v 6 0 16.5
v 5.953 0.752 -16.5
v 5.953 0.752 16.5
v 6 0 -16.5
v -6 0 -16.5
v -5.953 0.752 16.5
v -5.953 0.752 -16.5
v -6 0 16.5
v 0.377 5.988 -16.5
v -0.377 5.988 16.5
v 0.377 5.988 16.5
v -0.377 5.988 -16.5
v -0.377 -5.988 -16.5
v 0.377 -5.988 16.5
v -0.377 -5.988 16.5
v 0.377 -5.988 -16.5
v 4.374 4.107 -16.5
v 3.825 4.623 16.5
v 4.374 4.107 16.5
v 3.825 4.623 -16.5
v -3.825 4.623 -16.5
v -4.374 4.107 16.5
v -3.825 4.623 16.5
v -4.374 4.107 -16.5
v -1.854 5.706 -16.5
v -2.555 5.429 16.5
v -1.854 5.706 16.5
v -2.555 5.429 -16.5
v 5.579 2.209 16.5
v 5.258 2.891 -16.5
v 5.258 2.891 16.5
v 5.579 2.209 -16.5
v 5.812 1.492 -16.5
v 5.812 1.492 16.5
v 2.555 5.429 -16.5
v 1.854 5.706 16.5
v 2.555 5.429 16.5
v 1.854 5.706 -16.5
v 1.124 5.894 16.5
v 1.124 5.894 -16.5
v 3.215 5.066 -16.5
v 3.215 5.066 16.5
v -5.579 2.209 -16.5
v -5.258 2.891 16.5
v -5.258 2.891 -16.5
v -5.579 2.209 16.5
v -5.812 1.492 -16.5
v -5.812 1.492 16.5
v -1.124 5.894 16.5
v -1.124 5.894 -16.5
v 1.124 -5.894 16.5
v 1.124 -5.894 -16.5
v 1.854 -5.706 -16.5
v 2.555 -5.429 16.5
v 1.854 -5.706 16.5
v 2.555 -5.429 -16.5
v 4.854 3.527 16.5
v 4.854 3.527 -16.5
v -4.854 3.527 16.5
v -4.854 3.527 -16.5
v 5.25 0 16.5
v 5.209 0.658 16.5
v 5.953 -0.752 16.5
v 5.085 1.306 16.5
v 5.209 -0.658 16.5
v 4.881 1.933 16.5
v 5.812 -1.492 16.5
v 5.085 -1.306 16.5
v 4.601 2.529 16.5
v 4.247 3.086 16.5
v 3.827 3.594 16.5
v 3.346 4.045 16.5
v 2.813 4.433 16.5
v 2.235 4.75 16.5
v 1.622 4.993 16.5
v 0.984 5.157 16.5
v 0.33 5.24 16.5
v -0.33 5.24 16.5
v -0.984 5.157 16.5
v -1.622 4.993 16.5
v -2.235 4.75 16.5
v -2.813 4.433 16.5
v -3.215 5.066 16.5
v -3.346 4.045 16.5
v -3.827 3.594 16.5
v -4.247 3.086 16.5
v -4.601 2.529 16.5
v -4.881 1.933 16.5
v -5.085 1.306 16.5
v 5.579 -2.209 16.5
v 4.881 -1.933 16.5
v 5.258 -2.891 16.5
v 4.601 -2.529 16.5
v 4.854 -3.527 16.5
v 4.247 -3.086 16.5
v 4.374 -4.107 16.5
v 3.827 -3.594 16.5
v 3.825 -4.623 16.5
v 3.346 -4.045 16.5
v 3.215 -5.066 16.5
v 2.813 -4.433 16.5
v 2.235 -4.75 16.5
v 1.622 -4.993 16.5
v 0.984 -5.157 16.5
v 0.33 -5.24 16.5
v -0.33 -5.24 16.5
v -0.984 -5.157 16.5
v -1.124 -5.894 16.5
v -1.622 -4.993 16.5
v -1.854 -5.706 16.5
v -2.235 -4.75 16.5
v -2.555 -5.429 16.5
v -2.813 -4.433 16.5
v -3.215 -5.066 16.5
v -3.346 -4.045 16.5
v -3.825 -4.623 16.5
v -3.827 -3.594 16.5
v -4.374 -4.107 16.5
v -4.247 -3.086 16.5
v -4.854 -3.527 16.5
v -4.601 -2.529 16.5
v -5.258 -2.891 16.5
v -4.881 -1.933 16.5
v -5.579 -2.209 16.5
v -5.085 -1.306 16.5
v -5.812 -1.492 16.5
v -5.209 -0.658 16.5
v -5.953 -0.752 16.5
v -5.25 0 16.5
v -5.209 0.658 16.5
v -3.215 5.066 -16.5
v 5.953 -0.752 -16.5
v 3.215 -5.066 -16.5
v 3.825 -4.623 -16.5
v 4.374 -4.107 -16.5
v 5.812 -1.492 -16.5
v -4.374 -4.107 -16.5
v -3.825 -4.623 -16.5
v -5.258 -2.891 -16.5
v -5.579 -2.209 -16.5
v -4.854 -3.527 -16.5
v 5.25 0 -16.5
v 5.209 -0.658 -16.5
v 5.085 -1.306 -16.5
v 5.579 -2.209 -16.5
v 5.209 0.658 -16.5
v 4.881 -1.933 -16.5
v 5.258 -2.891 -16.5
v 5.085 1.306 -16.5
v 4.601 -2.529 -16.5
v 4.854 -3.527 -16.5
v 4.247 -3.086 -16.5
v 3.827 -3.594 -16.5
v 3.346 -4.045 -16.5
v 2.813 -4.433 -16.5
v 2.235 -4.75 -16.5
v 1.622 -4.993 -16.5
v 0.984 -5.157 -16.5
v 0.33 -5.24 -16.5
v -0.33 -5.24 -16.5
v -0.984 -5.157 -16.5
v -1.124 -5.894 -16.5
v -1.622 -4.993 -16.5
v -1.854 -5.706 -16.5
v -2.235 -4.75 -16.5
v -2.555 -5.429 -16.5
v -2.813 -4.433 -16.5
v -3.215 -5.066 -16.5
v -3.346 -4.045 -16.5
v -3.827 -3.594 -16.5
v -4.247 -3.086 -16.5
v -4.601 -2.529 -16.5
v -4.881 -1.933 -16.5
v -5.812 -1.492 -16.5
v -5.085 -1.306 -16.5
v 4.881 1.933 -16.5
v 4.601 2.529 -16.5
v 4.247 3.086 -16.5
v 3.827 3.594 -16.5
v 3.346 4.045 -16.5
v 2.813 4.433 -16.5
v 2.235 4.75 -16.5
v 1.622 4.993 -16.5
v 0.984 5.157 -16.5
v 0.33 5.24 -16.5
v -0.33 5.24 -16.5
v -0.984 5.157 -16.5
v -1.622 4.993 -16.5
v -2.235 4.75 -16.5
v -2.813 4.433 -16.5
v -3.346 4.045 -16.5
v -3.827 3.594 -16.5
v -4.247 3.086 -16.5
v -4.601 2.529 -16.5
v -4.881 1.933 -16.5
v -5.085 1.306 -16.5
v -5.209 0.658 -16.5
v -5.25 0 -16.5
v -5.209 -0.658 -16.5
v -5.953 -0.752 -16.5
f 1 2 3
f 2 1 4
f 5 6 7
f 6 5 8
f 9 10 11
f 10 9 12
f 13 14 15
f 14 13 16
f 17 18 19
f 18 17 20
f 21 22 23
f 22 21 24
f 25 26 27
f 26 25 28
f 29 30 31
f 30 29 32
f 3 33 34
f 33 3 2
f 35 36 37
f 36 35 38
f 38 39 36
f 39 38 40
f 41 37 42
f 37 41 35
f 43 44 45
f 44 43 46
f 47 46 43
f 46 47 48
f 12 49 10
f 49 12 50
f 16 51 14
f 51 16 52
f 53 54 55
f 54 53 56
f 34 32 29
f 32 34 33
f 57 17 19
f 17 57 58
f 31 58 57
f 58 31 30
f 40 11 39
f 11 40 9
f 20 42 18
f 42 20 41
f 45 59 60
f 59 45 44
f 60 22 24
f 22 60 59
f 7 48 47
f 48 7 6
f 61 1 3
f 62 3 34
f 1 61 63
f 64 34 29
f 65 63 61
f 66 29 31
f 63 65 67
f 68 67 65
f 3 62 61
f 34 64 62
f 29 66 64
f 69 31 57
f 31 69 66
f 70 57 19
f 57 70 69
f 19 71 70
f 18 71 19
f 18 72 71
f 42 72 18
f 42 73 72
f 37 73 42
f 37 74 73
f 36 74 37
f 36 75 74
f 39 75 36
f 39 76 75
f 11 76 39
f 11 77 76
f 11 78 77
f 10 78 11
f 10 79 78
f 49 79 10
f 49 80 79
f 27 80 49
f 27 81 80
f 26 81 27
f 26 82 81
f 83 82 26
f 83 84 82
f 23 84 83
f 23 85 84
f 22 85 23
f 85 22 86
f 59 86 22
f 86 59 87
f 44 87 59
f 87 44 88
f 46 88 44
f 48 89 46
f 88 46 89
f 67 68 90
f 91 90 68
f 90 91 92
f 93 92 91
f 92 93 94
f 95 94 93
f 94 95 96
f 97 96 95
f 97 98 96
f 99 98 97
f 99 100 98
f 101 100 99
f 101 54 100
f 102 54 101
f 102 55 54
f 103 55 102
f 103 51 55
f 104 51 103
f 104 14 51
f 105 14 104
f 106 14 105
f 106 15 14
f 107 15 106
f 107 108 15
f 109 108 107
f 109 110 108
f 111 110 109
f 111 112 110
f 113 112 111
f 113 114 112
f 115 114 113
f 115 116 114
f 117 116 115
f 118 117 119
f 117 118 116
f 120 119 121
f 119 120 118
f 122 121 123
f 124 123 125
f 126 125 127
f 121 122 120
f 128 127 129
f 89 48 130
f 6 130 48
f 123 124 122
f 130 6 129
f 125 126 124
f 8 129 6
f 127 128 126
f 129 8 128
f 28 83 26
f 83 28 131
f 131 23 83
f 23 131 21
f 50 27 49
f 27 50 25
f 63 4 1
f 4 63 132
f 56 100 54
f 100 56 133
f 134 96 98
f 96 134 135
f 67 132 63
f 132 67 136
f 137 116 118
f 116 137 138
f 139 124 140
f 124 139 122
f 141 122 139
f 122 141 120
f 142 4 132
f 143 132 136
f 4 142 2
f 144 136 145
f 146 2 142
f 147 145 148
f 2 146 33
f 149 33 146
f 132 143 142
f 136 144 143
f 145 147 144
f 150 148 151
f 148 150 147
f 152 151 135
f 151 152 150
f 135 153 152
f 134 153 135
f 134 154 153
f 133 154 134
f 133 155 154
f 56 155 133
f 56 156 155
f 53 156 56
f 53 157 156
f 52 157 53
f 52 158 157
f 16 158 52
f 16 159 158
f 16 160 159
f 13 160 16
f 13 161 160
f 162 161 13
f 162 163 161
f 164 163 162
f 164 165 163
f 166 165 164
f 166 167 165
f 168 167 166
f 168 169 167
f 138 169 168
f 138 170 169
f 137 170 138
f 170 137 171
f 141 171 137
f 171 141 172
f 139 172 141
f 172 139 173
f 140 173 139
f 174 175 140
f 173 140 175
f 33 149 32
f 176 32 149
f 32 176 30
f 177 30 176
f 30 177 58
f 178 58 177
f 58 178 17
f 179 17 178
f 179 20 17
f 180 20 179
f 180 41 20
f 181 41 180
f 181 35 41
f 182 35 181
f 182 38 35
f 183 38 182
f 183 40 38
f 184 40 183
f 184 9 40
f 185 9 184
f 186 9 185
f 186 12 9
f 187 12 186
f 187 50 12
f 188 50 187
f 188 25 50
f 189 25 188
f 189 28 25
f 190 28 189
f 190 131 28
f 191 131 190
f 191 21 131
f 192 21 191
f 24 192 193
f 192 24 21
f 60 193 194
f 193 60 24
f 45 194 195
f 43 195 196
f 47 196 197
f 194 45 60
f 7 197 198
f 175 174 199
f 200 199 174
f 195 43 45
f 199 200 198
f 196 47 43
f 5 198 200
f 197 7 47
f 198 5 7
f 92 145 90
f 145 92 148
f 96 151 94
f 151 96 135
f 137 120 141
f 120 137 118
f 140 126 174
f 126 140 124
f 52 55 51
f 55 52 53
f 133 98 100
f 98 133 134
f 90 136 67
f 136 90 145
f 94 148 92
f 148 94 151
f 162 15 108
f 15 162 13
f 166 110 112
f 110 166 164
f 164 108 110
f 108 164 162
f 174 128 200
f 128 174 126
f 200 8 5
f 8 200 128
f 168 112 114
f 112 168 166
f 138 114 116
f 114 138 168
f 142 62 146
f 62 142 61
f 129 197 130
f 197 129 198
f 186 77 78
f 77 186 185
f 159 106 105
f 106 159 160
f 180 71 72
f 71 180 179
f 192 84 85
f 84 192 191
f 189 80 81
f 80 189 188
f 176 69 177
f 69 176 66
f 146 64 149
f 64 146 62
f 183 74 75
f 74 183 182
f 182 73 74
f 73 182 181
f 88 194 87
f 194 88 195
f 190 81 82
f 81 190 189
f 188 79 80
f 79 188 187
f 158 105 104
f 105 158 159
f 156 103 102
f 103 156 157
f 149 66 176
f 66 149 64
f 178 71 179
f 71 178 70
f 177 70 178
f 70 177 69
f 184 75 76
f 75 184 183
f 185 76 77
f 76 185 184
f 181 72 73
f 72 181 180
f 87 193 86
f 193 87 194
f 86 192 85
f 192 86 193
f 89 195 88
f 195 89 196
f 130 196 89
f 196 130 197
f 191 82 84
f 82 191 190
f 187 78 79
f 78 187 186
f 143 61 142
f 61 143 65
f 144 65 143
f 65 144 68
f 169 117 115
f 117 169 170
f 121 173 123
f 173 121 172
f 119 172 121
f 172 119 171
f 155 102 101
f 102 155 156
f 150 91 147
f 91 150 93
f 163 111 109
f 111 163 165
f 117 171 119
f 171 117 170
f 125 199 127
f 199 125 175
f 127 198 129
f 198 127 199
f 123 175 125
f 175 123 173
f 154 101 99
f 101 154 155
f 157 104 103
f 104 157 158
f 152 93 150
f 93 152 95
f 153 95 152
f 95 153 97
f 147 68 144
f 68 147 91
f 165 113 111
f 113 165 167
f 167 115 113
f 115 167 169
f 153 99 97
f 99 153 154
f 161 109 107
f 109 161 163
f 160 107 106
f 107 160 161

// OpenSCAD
$fn = 50;


difference() {
	union() {
		translate(v = [0, 0, -16.5000000000]) {
			cylinder(h = 33, r = 6.0000000000);
		}
	}
	union() {
		translate(v = [0, 0, -100.0000000000]) {
			cylinder(h = 200, r = 5.2500000000);
		}
	}
}
